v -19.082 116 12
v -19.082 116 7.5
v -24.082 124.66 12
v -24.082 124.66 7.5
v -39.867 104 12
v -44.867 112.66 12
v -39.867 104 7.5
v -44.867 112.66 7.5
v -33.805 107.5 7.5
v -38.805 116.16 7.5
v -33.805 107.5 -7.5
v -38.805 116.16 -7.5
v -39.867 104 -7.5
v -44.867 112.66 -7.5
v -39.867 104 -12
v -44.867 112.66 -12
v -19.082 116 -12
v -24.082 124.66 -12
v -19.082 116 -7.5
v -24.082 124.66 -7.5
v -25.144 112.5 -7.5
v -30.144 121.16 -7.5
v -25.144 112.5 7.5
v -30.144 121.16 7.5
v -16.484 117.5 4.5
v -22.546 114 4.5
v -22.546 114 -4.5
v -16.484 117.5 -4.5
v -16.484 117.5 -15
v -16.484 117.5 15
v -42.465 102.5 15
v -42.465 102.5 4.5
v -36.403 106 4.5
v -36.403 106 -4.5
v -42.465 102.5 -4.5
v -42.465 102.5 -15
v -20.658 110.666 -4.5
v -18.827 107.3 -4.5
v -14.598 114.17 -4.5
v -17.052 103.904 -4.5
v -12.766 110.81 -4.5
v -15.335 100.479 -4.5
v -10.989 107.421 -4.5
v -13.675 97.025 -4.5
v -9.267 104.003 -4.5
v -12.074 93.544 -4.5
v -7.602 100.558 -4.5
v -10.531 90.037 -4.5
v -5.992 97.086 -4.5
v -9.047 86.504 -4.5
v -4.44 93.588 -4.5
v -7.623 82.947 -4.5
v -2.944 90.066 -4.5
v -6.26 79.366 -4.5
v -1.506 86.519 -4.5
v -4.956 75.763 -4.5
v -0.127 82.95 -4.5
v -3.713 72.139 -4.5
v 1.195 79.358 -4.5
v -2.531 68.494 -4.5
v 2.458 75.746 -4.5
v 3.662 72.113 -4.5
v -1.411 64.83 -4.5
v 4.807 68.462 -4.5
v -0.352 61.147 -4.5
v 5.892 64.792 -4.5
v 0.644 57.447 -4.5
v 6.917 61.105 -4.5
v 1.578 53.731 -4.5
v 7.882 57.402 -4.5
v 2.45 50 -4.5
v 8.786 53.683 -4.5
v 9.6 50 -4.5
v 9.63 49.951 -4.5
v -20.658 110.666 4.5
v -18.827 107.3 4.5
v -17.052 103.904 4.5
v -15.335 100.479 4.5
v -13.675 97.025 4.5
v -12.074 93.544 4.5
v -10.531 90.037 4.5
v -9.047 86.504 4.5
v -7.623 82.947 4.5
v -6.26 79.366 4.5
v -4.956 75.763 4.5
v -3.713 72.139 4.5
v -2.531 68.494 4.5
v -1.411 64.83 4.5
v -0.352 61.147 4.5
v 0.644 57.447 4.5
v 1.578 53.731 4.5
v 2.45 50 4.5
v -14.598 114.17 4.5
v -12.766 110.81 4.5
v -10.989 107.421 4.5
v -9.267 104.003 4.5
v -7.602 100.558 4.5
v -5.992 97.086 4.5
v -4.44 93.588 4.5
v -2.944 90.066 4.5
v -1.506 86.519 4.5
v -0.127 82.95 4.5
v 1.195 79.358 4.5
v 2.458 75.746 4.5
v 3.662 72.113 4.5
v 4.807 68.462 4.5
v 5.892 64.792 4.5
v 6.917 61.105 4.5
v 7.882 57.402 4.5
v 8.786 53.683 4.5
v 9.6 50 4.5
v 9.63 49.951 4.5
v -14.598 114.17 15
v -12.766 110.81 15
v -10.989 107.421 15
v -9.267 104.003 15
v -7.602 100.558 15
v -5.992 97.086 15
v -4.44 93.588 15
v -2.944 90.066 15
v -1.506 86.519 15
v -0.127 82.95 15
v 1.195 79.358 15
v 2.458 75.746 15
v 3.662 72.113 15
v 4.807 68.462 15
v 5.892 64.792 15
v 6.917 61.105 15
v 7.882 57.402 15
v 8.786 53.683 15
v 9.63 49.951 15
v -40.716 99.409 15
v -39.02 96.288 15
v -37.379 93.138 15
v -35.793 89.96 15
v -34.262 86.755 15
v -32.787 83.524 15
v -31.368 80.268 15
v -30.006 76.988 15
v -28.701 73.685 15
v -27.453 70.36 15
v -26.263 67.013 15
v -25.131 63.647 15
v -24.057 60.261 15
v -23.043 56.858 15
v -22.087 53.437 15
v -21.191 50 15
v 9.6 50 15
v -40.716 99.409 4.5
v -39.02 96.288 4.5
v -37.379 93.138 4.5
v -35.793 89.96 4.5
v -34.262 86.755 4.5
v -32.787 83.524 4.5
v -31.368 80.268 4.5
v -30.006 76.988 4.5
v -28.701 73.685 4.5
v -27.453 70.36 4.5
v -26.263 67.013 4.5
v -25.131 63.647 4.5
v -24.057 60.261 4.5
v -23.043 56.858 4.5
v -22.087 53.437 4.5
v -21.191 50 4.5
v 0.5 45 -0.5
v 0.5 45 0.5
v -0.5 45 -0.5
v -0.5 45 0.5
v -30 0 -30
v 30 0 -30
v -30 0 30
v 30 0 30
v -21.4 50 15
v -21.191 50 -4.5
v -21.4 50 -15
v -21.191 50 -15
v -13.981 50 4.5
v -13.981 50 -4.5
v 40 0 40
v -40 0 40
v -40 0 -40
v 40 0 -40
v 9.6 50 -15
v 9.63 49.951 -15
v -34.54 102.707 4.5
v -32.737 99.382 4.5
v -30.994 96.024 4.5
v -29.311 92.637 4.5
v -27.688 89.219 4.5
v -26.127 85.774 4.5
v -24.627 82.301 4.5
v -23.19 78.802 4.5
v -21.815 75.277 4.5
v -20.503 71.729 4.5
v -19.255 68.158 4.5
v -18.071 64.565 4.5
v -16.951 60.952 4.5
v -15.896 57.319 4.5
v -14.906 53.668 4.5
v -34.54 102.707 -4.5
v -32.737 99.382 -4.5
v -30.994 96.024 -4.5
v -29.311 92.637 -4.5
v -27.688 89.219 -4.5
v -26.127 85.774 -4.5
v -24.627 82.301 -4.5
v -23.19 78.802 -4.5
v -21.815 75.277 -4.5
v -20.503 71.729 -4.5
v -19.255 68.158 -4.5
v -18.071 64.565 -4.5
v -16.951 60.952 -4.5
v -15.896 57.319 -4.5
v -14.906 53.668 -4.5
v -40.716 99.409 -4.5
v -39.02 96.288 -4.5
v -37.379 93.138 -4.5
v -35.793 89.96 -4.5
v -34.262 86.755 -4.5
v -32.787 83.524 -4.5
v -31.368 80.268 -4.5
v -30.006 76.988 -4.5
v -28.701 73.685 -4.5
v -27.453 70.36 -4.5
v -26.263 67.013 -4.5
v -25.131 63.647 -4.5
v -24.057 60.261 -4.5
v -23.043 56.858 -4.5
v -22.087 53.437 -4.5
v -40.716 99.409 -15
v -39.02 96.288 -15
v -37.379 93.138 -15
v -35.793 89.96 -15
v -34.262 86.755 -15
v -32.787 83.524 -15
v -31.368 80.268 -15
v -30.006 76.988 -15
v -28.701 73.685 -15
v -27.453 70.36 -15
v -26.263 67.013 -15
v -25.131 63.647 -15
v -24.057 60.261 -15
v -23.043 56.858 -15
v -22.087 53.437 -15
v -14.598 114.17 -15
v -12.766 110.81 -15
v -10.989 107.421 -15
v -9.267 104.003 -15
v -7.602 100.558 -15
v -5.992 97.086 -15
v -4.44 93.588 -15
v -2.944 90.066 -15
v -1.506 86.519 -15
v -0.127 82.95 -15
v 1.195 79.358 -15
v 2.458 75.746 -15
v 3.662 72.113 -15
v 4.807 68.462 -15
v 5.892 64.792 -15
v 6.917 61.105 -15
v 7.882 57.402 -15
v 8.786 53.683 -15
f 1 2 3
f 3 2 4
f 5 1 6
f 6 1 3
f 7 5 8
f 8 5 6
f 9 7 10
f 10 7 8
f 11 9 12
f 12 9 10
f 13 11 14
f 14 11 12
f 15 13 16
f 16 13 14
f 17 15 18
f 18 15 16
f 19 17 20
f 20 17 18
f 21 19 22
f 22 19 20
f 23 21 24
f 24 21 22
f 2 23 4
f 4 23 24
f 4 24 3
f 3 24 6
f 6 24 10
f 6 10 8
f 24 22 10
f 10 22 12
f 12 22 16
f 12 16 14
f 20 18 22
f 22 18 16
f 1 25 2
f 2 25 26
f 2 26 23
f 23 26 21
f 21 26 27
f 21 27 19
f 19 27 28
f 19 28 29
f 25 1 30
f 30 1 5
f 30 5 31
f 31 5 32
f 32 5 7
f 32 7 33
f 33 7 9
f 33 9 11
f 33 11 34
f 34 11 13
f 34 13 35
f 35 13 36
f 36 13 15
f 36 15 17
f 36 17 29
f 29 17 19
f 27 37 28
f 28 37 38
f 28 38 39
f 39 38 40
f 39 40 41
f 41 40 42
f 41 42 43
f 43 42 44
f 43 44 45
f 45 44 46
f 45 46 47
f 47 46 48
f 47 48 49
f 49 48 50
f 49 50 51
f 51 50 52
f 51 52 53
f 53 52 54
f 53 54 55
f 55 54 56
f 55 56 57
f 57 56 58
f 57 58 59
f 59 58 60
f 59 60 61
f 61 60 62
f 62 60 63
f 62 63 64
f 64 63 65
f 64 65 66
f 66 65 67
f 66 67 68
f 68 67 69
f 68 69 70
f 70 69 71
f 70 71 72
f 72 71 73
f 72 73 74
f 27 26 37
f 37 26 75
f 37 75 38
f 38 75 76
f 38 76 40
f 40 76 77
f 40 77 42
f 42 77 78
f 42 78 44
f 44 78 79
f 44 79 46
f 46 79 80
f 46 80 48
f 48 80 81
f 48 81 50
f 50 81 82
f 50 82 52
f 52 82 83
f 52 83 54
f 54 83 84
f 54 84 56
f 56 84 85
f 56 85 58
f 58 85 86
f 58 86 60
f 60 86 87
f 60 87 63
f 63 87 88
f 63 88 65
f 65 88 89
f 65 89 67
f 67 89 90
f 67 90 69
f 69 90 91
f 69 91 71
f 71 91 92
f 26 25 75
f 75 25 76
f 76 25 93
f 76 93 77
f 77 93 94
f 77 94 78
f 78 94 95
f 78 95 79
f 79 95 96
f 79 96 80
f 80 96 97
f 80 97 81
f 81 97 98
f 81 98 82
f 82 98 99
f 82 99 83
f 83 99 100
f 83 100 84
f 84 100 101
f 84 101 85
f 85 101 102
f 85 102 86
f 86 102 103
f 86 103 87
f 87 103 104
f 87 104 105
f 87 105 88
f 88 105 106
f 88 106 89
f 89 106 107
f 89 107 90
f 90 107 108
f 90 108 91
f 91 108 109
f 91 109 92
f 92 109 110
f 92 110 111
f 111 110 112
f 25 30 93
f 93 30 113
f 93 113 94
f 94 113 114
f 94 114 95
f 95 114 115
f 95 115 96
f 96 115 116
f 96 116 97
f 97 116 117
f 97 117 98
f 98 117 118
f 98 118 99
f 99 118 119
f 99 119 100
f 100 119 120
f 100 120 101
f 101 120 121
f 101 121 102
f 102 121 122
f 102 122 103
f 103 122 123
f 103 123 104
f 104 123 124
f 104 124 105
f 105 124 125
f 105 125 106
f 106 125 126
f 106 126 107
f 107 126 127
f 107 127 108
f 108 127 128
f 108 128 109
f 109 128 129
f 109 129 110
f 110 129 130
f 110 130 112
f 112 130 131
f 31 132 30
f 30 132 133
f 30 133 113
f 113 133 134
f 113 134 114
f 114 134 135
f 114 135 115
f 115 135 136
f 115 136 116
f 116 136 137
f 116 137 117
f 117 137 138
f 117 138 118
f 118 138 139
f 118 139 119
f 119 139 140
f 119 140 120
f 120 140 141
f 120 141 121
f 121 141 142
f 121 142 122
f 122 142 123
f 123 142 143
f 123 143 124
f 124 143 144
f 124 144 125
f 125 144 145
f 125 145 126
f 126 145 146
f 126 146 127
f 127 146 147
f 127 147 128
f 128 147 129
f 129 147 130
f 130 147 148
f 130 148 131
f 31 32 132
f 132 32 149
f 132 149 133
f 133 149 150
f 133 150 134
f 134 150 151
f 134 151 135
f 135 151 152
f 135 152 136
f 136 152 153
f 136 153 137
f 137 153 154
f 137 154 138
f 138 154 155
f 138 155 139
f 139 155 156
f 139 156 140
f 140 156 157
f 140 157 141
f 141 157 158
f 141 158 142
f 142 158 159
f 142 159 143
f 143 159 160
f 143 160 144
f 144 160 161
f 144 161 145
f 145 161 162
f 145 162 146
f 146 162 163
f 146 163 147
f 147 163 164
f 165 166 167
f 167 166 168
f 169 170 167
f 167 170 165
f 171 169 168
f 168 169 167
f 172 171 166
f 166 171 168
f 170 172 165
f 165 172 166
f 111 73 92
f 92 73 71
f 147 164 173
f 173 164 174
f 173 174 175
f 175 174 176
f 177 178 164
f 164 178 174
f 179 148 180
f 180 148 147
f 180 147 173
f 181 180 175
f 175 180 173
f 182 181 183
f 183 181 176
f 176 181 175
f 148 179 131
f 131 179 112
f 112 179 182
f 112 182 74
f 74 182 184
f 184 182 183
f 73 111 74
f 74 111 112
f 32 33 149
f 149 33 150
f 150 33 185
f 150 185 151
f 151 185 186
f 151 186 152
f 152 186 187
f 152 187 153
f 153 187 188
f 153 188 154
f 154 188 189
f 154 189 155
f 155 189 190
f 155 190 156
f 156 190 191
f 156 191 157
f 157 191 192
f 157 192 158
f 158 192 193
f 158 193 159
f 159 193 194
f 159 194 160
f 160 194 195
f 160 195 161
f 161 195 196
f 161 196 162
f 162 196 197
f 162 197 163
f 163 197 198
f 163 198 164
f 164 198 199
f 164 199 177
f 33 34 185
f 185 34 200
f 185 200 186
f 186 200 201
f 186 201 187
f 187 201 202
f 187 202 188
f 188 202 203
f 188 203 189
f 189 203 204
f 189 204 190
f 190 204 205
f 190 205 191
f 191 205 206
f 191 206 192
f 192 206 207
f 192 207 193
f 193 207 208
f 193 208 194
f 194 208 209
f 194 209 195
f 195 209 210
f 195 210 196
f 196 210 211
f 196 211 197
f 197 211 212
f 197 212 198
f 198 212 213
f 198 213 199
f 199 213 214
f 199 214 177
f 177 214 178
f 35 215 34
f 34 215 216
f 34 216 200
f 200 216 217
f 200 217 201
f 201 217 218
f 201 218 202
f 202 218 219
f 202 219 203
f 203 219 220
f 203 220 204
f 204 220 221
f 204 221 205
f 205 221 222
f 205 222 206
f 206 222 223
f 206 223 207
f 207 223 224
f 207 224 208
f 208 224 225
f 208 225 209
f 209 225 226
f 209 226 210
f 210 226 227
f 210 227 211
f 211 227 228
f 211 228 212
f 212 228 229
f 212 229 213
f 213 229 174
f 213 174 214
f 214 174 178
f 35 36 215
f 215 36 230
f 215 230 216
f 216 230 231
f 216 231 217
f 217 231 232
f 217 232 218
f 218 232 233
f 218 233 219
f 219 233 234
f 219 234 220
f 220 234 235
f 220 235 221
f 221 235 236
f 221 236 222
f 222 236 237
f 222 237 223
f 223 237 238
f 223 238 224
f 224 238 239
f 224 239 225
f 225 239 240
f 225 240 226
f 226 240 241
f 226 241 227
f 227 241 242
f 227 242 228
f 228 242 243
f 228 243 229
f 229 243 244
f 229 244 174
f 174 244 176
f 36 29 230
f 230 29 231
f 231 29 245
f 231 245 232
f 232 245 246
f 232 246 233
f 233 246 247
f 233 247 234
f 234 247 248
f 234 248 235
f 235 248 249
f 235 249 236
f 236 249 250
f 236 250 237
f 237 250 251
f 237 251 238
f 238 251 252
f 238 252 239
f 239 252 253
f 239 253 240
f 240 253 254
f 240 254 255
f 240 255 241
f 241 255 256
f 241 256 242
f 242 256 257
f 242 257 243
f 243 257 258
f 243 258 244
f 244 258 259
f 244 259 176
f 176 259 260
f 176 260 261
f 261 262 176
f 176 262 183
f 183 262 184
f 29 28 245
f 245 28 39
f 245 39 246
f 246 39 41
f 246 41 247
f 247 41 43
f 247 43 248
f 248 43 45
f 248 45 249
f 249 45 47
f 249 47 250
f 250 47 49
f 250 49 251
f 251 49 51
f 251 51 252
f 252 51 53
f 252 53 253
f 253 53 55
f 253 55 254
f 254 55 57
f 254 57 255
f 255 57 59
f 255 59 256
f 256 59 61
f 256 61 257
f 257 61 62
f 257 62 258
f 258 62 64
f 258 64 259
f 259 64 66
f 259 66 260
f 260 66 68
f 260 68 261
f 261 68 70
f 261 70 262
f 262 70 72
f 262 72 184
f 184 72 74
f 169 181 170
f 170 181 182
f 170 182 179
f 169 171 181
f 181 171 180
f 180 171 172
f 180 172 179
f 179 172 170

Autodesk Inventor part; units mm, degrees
sketch "Sketch2" plane through (0, 0, 0) normal (0, 1, 0) x (-1, 0, 0)
  line L0 (15, 15) -> (-15, 15)
  line L1 (-15, -15) -> (15, -15)
  line L2 (15, 4.5) -> (8, 4.5)
  line L3 (8, 4.5) -> (8, -4.5)
  line L4 (8, -4.5) -> (15, -4.5)
  line L5 (-15, 4.5) -> (-8, 4.5)
  line L6 (-8, 4.5) -> (-8, -4.5)
  line L7 (-8, -4.5) -> (-15, -4.5)
  line L8 (15, -15) -> (15, -4.5)
  line L9 (15, 4.5) -> (15, 15)
  line L10 (-15, 15) -> (-15, 4.5)
  line L11 (-15, -4.5) -> (-15, -15)
  point P0 (0, 0)
  dimension "d18" = 9
  dimension "d19" = 7
  dimension "d21" = 16
  dimension "d22" = 30
  dimension "d23" = 15
  dimension "d24" = 4.5
  dimension "d25" = 8
sketch "Sketch6" plane through (0, 0, 0) normal (0, 0, 1) x (1, 0, 0)
  arc A0 (0, 0) -> (-110, 190.5256) centre (-220, 0) ccw
  line L0 (-220, 0) -> (-110, 190.5256) construction
  line L1 (-220, 0) -> (0, 0) construction
  dimension "d41" = 220
  dimension "d42" = 60
  dimension "d43" = 220
  dimension "d44" = 0
sweep "Sweep2" add profiles "Sketch2" path "Sketch6"
sketch "Sketch7" plane through (-102.5, 203.516, 4.5) normal (-0.8660254, 0.5, 0) x (0, 0, 1)
  line L0 (-16.5, -3) -> (-12, -3)
  line L1 (-12, -3) -> (-12, -10)
  line L2 (-12, -10) -> (3, -10)
  line L3 (3, -10) -> (3, -3)
  line L4 (3, -3) -> (7.5, -3)
  line L5 (7.5, -3) -> (7.5, -27)
  line L6 (7.5, -27) -> (3, -27)
  line L7 (3, -27) -> (3, -20)
  line L8 (3, -20) -> (-12, -20)
  line L9 (-12, -20) -> (-12, -27)
  line L10 (-12, -27) -> (-16.5, -27)
  line L11 (-16.5, -27) -> (-16.5, -3)
  line L12 (-19.5, 0) -> (-19.5, -30) projected
  line L13 (-9, -7) -> (-9, 0) projected
  line L14 (0, 0) -> (0, -7) projected
  line L15 (10.5, -30) -> (10.5, 0) projected
  line L16 (-19.5, -30) -> (-9, -30) projected
  line L17 (-9, 0) -> (-19.5, 0) projected
  line L18 (0, -30) -> (10.5, -30) projected
  line L19 (-9, -23) -> (0, -23) projected
  line L20 (0, -7) -> (-9, -7) projected
  point P0 (-4.5, -125)
  point P1 (-14.25, 0)
  dimension "d47" = 3
  dimension "d48" = 3
  dimension "d49" = 3
  dimension "d50" = 3
  dimension "d51" = 3
  dimension "d52" = 3
  dimension "d53" = 3
  dimension "d54" = 3
  dimension "d55" = 3
extrude "Extrusion3" add sketch "Sketch7" along normal blind 10
sketch "Sketch8" plane through (-116, 180.1333, -12) normal (0, 0, -1) x (-0.8660254, 0.5, 0)
  circle A0 centre (5, 12) radius 2
  line L0 (0, 0) -> (10, 0) projected
  line L1 (10, 24) -> (10, 0) projected
  point P0 (-190.5256, -98)
  dimension "d58" = 4
  dimension "d59" = 12
  dimension "d60" = 5
extrude "Extrusion4" cut sketch "Sketch8" against normal through all
sketch "Sketch9" plane through (0, 0, 0) normal (0, 1, 0) x (-1, 0, 0)
  line L0 (-40, 40) -> (40, 40)
  line L1 (40, 40) -> (40, -40)
  line L2 (40, -40) -> (-40, -40)
  line L3 (-40, -40) -> (-40, 40)
  point P0 (0, 0)
  dimension "d63" = 80
  dimension "d64" = 80
  dimension "d65" = 40
  dimension "d66" = 40
ref_plane "Work Plane1" through (0, 50, 0) normal (0, 1, 0) x (-1, 0, 0)
sketch "Sketch10" plane through (0, 50, 0) normal (0, 1, 0) x (-1, 0, 0)
  line L0 (-9.6, 15) -> (21.4, 15)
  line L1 (21.4, 15) -> (21.4, -15)
  line L2 (21.4, -15) -> (-9.6, -15)
  line L3 (-9.6, -15) -> (-9.6, 15)
  point P0 (0, 0)
  dimension "d68" = 30
  dimension "d69" = 9.6
  dimension "d70" = 15
  dimension "d71" = 31
loft "Loft1" add profiles "Sketch9", "Sketch10"
ref_plane "Work Plane2" through (0, 0, -79) normal (0, 0, 1) x (1, 0, 0)
sketch "Sketch11" plane through (0, 0, -79) normal (0, 0, 1) x (1, 0, 0)
  line L0 (50, -5) -> (-129.034, -5)
  line L1 (-129.034, -5) -> (-129.034, 135)
  line L2 (-129.034, 135) -> (-90, 202.6089)
  line L3 (-90, 202.6089) -> (50, 95)
  line L4 (50, -5) -> (50, 95)
  point P0 (0, 0)
  dimension "d77" = 100
  dimension "d79" = 140
  dimension "d80" = 67.6089
  dimension "d81" = 140
  dimension "d82" = 150
  dimension "d83" = 50
  dimension "d86" = 5
extrude "Extrusion5" [suppressed]
sketch "Sketch12" plane through (-40, 0, 40) normal (0, -1, 0) x (1, 0, 0)
  line L0 (70, -70) -> (10, -70)
  line L1 (10, -70) -> (10, -10)
  line L2 (10, -10) -> (70, -10)
  line L3 (70, -10) -> (70, -70)
  line L4 (0, 0) -> (0, -80) projected
  line L5 (0, -80) -> (80, -80) projected
  line L6 (80, -80) -> (80, 0) projected
  line L7 (80, 0) -> (0, 0) projected
  point P0 (40, -40)
  dimension "d87" = 10
  dimension "d88" = 10
  dimension "d89" = 10
  dimension "d90" = 10
ref_plane "Work Plane3" through (-40, 45, 40) normal (0, -1, 0) x (1, 0, 0)
sketch "Sketch14" plane through (-40, 45, 40) normal (0, -1, 0) x (1, 0, 0)
  line L0 (40.5, -40.5) -> (39.5, -40.5)
  line L1 (39.5, -40.5) -> (39.5, -39.5)
  line L2 (39.5, -39.5) -> (40.5, -39.5)
  line L3 (40.5, -39.5) -> (40.5, -40.5)
  line L4 (80, 0) -> (0, 0) projected
  line L5 (0, 0) -> (0, -80) projected
  point P0 (40, -40)
  point P1 (0, -40)
  dimension "d95" = 1
  dimension "d96" = 1
  dimension "d97" = 39.5
  dimension "d98" = 39.5
loft "Loft2" cut profiles "Sketch12", "Sketch14" contours L0 L1 L2 L3 / all
ref_plane "Work Plane4" through (9.6, 50, -45) normal (0, 0, -1) x (-1, 0, 0)
sketch "Sketch15" plane through (9.6, 50, -45) normal (0, 0, -1) x (-1, 0, 0)
  line L0 (-151.4512, 170) -> (229.6, 170)
  line L1 (229.6, 170) -> (229.6, -50)
  line L2 (229.6, -50) -> (-151.4512, 170)
  line L3 (0, 0) -> (7.15, 0) construction
  line L4 (229.6, -50) -> (9.6, -50) construction
  dimension "d105" = 220
  dimension "d107" = 0
  dimension "d108" = 30
  dimension "d109" = 220
extrude "Extrusion6" cut sketch "Sketch15" against normal through all
sketch "Sketch16" plane through (-42.4648, 102.5, 15) normal (-0.5, 0.8660254, 0) x (0.8660254, 0.5, 0)
  line L0 (27, 27) -> (27, 22.5)
  line L1 (27, 22.5) -> (20, 22.5)
  line L2 (20, 22.5) -> (20, 7.5)
  line L3 (18.8407, 0) -> (18.8407, 10.5) projected
  line L4 (20, 7.5) -> (27, 7.5)
  line L5 (27, 7.5) -> (27, 3)
  line L6 (27, 3) -> (3, 3)
  line L7 (3, 3) -> (3, 7.5)
  line L8 (3, 7.5) -> (10, 7.5)
  line L9 (10, 7.5) -> (10, 22.5)
  line L10 (10, 22.5) -> (3, 22.5)
  line L11 (3, 22.5) -> (3, 27)
  line L12 (3, 27) -> (27, 27)
  line L13 (30, 30) -> (30, 19.5) projected
  line L14 (30, 19.5) -> (23, 19.5) projected
  line L15 (0, 30) -> (30, 30) projected
  line L16 (23, 19.5) -> (23, 10.5) projected
  line L17 (23, 10.5) -> (30, 10.5) projected
  line L18 (30, 0) -> (0, 0) projected
  line L19 (7, 10.5) -> (7, 19.5) projected
  line L20 (0, 0) -> (0, 10.5) projected
  line L21 (0, 19.5) -> (0, 30) projected
  point P0 (-14.4744, 15)
  dimension "d112" = 3
  dimension "d113" = 3
  dimension "d114" = 3
  dimension "d115" = 3
  dimension "d116" = 3
  dimension "d117" = 3
  dimension "d118" = 3
  dimension "d119" = 3
  dimension "d120" = 3
extrude "Extrusion7" add sketch "Sketch16" along normal blind 10
properties part number "LightRail_endSection"
